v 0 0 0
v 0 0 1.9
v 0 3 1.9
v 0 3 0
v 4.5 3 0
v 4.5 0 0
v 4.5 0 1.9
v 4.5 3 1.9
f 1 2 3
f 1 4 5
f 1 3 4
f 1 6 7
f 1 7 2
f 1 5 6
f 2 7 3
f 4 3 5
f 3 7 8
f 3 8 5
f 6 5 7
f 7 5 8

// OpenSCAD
/* Warning, this is a very basic generator with a lot of approximation 
input data : [QFN, N6A, 4.5x3x1.9mm, 24, , A, C04-01220A]
generated by com.zoubworld.electronics.cad.model3d.Basic
Date : Sun Feb 15 10:50:49 CET 2026
*/

//body
color("black")
translate([0,0,0])
cube([4.5,3.0,1.9], center=false);
